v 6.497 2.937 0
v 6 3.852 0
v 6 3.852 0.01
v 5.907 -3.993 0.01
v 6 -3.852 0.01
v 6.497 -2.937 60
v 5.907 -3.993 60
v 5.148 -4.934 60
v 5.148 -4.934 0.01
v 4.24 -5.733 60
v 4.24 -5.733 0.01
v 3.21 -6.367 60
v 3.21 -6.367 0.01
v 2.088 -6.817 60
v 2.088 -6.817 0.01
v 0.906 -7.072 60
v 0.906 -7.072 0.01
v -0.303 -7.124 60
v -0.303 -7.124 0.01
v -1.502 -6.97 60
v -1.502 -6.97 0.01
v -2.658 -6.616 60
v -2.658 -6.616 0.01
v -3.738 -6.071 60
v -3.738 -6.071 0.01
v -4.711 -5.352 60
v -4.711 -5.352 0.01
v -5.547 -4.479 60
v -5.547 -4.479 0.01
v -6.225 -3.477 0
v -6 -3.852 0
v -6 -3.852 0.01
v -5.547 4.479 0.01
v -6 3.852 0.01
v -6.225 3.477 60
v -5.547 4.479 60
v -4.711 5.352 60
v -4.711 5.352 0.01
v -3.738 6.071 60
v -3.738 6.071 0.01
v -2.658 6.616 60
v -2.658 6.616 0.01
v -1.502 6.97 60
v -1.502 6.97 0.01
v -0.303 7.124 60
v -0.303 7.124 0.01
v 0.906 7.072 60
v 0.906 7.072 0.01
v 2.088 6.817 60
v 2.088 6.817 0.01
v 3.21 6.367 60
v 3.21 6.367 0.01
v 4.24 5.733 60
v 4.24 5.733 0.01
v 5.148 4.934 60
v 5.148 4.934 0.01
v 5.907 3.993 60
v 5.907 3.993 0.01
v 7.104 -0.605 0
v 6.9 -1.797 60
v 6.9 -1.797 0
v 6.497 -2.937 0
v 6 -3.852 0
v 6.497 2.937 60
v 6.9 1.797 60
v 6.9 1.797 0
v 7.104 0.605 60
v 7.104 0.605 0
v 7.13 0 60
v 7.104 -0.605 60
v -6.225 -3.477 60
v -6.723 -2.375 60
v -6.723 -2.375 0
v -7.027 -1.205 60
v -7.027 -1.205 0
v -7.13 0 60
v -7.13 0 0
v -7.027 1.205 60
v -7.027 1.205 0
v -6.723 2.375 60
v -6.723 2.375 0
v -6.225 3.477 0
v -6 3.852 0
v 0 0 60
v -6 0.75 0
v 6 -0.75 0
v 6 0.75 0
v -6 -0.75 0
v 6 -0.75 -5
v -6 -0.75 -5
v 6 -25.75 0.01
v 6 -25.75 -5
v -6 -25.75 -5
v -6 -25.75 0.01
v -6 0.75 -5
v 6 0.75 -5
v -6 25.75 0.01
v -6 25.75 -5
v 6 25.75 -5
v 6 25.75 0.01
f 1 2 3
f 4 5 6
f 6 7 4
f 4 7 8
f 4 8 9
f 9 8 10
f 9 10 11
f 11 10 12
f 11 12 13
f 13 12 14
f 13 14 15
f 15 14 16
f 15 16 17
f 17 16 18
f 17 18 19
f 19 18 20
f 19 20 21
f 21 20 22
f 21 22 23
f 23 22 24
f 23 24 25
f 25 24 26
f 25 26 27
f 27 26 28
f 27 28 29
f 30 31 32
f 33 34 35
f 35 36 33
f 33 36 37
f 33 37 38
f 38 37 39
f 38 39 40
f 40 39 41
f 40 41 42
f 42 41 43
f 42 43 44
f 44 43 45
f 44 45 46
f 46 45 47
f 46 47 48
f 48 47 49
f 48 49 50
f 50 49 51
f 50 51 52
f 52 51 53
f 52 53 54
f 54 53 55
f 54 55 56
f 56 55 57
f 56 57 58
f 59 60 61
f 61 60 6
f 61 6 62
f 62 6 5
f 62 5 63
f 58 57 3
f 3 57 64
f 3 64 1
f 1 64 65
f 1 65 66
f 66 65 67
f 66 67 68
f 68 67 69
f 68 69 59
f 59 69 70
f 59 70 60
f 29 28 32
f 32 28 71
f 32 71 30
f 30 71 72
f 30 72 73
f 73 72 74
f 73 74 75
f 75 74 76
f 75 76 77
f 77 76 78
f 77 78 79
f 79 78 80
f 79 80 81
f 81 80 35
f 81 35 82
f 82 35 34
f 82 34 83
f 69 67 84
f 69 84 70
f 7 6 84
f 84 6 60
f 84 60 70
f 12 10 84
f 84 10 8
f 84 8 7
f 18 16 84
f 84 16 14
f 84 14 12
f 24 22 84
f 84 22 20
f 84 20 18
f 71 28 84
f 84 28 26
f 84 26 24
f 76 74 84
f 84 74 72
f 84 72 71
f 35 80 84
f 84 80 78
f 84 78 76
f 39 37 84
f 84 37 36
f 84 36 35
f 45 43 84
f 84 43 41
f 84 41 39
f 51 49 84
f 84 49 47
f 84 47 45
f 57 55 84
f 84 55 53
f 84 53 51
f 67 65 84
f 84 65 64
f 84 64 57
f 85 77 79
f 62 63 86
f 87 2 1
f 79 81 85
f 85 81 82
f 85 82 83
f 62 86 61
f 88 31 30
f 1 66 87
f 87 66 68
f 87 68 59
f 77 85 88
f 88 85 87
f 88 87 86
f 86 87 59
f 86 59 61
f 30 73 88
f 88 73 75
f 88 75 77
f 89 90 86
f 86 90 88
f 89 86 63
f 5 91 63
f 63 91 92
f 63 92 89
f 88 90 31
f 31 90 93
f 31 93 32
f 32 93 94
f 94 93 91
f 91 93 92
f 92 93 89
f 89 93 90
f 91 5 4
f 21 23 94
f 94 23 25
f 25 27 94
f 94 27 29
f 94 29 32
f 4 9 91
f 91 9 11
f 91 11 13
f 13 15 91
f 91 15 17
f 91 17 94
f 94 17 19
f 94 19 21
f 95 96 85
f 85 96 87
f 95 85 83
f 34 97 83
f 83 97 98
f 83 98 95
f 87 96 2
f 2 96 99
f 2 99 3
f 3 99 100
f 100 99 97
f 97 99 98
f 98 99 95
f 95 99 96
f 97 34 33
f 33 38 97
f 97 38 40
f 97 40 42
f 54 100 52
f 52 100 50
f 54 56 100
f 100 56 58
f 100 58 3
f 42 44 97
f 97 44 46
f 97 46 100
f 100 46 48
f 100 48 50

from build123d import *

# Parameters (mm, degrees)
SKETCH1_R                = 7.13
BOSS_EXTRUDE1_DEPTH      = 60
BOSS_EXTRUDE2_DEPTH      = 0.01
BOSS_EXTRUDE2_DEPTH_BACK = 5
SKETCH2_W                = 12
SKETCH2_H                = 25


with BuildPart() as part:
    # Sketch1 → Boss-Extrude1 (new body)
    with BuildSketch(Plane.XY):
        Circle(SKETCH1_R)
    extrude(amount=BOSS_EXTRUDE1_DEPTH)

    # Sketch2 → Boss-Extrude2 (add, two sides: drawn at the far end of the back side and taken through both)
    with BuildSketch(Plane.XY.offset(-BOSS_EXTRUDE2_DEPTH_BACK)):
        with Locations((0, -13.25)):
            Rectangle(SKETCH2_W, SKETCH2_H)
        with Locations((0, 13.25)):
            Rectangle(SKETCH2_W, SKETCH2_H)
    extrude(amount=BOSS_EXTRUDE2_DEPTH + BOSS_EXTRUDE2_DEPTH_BACK)


solid = part.part
